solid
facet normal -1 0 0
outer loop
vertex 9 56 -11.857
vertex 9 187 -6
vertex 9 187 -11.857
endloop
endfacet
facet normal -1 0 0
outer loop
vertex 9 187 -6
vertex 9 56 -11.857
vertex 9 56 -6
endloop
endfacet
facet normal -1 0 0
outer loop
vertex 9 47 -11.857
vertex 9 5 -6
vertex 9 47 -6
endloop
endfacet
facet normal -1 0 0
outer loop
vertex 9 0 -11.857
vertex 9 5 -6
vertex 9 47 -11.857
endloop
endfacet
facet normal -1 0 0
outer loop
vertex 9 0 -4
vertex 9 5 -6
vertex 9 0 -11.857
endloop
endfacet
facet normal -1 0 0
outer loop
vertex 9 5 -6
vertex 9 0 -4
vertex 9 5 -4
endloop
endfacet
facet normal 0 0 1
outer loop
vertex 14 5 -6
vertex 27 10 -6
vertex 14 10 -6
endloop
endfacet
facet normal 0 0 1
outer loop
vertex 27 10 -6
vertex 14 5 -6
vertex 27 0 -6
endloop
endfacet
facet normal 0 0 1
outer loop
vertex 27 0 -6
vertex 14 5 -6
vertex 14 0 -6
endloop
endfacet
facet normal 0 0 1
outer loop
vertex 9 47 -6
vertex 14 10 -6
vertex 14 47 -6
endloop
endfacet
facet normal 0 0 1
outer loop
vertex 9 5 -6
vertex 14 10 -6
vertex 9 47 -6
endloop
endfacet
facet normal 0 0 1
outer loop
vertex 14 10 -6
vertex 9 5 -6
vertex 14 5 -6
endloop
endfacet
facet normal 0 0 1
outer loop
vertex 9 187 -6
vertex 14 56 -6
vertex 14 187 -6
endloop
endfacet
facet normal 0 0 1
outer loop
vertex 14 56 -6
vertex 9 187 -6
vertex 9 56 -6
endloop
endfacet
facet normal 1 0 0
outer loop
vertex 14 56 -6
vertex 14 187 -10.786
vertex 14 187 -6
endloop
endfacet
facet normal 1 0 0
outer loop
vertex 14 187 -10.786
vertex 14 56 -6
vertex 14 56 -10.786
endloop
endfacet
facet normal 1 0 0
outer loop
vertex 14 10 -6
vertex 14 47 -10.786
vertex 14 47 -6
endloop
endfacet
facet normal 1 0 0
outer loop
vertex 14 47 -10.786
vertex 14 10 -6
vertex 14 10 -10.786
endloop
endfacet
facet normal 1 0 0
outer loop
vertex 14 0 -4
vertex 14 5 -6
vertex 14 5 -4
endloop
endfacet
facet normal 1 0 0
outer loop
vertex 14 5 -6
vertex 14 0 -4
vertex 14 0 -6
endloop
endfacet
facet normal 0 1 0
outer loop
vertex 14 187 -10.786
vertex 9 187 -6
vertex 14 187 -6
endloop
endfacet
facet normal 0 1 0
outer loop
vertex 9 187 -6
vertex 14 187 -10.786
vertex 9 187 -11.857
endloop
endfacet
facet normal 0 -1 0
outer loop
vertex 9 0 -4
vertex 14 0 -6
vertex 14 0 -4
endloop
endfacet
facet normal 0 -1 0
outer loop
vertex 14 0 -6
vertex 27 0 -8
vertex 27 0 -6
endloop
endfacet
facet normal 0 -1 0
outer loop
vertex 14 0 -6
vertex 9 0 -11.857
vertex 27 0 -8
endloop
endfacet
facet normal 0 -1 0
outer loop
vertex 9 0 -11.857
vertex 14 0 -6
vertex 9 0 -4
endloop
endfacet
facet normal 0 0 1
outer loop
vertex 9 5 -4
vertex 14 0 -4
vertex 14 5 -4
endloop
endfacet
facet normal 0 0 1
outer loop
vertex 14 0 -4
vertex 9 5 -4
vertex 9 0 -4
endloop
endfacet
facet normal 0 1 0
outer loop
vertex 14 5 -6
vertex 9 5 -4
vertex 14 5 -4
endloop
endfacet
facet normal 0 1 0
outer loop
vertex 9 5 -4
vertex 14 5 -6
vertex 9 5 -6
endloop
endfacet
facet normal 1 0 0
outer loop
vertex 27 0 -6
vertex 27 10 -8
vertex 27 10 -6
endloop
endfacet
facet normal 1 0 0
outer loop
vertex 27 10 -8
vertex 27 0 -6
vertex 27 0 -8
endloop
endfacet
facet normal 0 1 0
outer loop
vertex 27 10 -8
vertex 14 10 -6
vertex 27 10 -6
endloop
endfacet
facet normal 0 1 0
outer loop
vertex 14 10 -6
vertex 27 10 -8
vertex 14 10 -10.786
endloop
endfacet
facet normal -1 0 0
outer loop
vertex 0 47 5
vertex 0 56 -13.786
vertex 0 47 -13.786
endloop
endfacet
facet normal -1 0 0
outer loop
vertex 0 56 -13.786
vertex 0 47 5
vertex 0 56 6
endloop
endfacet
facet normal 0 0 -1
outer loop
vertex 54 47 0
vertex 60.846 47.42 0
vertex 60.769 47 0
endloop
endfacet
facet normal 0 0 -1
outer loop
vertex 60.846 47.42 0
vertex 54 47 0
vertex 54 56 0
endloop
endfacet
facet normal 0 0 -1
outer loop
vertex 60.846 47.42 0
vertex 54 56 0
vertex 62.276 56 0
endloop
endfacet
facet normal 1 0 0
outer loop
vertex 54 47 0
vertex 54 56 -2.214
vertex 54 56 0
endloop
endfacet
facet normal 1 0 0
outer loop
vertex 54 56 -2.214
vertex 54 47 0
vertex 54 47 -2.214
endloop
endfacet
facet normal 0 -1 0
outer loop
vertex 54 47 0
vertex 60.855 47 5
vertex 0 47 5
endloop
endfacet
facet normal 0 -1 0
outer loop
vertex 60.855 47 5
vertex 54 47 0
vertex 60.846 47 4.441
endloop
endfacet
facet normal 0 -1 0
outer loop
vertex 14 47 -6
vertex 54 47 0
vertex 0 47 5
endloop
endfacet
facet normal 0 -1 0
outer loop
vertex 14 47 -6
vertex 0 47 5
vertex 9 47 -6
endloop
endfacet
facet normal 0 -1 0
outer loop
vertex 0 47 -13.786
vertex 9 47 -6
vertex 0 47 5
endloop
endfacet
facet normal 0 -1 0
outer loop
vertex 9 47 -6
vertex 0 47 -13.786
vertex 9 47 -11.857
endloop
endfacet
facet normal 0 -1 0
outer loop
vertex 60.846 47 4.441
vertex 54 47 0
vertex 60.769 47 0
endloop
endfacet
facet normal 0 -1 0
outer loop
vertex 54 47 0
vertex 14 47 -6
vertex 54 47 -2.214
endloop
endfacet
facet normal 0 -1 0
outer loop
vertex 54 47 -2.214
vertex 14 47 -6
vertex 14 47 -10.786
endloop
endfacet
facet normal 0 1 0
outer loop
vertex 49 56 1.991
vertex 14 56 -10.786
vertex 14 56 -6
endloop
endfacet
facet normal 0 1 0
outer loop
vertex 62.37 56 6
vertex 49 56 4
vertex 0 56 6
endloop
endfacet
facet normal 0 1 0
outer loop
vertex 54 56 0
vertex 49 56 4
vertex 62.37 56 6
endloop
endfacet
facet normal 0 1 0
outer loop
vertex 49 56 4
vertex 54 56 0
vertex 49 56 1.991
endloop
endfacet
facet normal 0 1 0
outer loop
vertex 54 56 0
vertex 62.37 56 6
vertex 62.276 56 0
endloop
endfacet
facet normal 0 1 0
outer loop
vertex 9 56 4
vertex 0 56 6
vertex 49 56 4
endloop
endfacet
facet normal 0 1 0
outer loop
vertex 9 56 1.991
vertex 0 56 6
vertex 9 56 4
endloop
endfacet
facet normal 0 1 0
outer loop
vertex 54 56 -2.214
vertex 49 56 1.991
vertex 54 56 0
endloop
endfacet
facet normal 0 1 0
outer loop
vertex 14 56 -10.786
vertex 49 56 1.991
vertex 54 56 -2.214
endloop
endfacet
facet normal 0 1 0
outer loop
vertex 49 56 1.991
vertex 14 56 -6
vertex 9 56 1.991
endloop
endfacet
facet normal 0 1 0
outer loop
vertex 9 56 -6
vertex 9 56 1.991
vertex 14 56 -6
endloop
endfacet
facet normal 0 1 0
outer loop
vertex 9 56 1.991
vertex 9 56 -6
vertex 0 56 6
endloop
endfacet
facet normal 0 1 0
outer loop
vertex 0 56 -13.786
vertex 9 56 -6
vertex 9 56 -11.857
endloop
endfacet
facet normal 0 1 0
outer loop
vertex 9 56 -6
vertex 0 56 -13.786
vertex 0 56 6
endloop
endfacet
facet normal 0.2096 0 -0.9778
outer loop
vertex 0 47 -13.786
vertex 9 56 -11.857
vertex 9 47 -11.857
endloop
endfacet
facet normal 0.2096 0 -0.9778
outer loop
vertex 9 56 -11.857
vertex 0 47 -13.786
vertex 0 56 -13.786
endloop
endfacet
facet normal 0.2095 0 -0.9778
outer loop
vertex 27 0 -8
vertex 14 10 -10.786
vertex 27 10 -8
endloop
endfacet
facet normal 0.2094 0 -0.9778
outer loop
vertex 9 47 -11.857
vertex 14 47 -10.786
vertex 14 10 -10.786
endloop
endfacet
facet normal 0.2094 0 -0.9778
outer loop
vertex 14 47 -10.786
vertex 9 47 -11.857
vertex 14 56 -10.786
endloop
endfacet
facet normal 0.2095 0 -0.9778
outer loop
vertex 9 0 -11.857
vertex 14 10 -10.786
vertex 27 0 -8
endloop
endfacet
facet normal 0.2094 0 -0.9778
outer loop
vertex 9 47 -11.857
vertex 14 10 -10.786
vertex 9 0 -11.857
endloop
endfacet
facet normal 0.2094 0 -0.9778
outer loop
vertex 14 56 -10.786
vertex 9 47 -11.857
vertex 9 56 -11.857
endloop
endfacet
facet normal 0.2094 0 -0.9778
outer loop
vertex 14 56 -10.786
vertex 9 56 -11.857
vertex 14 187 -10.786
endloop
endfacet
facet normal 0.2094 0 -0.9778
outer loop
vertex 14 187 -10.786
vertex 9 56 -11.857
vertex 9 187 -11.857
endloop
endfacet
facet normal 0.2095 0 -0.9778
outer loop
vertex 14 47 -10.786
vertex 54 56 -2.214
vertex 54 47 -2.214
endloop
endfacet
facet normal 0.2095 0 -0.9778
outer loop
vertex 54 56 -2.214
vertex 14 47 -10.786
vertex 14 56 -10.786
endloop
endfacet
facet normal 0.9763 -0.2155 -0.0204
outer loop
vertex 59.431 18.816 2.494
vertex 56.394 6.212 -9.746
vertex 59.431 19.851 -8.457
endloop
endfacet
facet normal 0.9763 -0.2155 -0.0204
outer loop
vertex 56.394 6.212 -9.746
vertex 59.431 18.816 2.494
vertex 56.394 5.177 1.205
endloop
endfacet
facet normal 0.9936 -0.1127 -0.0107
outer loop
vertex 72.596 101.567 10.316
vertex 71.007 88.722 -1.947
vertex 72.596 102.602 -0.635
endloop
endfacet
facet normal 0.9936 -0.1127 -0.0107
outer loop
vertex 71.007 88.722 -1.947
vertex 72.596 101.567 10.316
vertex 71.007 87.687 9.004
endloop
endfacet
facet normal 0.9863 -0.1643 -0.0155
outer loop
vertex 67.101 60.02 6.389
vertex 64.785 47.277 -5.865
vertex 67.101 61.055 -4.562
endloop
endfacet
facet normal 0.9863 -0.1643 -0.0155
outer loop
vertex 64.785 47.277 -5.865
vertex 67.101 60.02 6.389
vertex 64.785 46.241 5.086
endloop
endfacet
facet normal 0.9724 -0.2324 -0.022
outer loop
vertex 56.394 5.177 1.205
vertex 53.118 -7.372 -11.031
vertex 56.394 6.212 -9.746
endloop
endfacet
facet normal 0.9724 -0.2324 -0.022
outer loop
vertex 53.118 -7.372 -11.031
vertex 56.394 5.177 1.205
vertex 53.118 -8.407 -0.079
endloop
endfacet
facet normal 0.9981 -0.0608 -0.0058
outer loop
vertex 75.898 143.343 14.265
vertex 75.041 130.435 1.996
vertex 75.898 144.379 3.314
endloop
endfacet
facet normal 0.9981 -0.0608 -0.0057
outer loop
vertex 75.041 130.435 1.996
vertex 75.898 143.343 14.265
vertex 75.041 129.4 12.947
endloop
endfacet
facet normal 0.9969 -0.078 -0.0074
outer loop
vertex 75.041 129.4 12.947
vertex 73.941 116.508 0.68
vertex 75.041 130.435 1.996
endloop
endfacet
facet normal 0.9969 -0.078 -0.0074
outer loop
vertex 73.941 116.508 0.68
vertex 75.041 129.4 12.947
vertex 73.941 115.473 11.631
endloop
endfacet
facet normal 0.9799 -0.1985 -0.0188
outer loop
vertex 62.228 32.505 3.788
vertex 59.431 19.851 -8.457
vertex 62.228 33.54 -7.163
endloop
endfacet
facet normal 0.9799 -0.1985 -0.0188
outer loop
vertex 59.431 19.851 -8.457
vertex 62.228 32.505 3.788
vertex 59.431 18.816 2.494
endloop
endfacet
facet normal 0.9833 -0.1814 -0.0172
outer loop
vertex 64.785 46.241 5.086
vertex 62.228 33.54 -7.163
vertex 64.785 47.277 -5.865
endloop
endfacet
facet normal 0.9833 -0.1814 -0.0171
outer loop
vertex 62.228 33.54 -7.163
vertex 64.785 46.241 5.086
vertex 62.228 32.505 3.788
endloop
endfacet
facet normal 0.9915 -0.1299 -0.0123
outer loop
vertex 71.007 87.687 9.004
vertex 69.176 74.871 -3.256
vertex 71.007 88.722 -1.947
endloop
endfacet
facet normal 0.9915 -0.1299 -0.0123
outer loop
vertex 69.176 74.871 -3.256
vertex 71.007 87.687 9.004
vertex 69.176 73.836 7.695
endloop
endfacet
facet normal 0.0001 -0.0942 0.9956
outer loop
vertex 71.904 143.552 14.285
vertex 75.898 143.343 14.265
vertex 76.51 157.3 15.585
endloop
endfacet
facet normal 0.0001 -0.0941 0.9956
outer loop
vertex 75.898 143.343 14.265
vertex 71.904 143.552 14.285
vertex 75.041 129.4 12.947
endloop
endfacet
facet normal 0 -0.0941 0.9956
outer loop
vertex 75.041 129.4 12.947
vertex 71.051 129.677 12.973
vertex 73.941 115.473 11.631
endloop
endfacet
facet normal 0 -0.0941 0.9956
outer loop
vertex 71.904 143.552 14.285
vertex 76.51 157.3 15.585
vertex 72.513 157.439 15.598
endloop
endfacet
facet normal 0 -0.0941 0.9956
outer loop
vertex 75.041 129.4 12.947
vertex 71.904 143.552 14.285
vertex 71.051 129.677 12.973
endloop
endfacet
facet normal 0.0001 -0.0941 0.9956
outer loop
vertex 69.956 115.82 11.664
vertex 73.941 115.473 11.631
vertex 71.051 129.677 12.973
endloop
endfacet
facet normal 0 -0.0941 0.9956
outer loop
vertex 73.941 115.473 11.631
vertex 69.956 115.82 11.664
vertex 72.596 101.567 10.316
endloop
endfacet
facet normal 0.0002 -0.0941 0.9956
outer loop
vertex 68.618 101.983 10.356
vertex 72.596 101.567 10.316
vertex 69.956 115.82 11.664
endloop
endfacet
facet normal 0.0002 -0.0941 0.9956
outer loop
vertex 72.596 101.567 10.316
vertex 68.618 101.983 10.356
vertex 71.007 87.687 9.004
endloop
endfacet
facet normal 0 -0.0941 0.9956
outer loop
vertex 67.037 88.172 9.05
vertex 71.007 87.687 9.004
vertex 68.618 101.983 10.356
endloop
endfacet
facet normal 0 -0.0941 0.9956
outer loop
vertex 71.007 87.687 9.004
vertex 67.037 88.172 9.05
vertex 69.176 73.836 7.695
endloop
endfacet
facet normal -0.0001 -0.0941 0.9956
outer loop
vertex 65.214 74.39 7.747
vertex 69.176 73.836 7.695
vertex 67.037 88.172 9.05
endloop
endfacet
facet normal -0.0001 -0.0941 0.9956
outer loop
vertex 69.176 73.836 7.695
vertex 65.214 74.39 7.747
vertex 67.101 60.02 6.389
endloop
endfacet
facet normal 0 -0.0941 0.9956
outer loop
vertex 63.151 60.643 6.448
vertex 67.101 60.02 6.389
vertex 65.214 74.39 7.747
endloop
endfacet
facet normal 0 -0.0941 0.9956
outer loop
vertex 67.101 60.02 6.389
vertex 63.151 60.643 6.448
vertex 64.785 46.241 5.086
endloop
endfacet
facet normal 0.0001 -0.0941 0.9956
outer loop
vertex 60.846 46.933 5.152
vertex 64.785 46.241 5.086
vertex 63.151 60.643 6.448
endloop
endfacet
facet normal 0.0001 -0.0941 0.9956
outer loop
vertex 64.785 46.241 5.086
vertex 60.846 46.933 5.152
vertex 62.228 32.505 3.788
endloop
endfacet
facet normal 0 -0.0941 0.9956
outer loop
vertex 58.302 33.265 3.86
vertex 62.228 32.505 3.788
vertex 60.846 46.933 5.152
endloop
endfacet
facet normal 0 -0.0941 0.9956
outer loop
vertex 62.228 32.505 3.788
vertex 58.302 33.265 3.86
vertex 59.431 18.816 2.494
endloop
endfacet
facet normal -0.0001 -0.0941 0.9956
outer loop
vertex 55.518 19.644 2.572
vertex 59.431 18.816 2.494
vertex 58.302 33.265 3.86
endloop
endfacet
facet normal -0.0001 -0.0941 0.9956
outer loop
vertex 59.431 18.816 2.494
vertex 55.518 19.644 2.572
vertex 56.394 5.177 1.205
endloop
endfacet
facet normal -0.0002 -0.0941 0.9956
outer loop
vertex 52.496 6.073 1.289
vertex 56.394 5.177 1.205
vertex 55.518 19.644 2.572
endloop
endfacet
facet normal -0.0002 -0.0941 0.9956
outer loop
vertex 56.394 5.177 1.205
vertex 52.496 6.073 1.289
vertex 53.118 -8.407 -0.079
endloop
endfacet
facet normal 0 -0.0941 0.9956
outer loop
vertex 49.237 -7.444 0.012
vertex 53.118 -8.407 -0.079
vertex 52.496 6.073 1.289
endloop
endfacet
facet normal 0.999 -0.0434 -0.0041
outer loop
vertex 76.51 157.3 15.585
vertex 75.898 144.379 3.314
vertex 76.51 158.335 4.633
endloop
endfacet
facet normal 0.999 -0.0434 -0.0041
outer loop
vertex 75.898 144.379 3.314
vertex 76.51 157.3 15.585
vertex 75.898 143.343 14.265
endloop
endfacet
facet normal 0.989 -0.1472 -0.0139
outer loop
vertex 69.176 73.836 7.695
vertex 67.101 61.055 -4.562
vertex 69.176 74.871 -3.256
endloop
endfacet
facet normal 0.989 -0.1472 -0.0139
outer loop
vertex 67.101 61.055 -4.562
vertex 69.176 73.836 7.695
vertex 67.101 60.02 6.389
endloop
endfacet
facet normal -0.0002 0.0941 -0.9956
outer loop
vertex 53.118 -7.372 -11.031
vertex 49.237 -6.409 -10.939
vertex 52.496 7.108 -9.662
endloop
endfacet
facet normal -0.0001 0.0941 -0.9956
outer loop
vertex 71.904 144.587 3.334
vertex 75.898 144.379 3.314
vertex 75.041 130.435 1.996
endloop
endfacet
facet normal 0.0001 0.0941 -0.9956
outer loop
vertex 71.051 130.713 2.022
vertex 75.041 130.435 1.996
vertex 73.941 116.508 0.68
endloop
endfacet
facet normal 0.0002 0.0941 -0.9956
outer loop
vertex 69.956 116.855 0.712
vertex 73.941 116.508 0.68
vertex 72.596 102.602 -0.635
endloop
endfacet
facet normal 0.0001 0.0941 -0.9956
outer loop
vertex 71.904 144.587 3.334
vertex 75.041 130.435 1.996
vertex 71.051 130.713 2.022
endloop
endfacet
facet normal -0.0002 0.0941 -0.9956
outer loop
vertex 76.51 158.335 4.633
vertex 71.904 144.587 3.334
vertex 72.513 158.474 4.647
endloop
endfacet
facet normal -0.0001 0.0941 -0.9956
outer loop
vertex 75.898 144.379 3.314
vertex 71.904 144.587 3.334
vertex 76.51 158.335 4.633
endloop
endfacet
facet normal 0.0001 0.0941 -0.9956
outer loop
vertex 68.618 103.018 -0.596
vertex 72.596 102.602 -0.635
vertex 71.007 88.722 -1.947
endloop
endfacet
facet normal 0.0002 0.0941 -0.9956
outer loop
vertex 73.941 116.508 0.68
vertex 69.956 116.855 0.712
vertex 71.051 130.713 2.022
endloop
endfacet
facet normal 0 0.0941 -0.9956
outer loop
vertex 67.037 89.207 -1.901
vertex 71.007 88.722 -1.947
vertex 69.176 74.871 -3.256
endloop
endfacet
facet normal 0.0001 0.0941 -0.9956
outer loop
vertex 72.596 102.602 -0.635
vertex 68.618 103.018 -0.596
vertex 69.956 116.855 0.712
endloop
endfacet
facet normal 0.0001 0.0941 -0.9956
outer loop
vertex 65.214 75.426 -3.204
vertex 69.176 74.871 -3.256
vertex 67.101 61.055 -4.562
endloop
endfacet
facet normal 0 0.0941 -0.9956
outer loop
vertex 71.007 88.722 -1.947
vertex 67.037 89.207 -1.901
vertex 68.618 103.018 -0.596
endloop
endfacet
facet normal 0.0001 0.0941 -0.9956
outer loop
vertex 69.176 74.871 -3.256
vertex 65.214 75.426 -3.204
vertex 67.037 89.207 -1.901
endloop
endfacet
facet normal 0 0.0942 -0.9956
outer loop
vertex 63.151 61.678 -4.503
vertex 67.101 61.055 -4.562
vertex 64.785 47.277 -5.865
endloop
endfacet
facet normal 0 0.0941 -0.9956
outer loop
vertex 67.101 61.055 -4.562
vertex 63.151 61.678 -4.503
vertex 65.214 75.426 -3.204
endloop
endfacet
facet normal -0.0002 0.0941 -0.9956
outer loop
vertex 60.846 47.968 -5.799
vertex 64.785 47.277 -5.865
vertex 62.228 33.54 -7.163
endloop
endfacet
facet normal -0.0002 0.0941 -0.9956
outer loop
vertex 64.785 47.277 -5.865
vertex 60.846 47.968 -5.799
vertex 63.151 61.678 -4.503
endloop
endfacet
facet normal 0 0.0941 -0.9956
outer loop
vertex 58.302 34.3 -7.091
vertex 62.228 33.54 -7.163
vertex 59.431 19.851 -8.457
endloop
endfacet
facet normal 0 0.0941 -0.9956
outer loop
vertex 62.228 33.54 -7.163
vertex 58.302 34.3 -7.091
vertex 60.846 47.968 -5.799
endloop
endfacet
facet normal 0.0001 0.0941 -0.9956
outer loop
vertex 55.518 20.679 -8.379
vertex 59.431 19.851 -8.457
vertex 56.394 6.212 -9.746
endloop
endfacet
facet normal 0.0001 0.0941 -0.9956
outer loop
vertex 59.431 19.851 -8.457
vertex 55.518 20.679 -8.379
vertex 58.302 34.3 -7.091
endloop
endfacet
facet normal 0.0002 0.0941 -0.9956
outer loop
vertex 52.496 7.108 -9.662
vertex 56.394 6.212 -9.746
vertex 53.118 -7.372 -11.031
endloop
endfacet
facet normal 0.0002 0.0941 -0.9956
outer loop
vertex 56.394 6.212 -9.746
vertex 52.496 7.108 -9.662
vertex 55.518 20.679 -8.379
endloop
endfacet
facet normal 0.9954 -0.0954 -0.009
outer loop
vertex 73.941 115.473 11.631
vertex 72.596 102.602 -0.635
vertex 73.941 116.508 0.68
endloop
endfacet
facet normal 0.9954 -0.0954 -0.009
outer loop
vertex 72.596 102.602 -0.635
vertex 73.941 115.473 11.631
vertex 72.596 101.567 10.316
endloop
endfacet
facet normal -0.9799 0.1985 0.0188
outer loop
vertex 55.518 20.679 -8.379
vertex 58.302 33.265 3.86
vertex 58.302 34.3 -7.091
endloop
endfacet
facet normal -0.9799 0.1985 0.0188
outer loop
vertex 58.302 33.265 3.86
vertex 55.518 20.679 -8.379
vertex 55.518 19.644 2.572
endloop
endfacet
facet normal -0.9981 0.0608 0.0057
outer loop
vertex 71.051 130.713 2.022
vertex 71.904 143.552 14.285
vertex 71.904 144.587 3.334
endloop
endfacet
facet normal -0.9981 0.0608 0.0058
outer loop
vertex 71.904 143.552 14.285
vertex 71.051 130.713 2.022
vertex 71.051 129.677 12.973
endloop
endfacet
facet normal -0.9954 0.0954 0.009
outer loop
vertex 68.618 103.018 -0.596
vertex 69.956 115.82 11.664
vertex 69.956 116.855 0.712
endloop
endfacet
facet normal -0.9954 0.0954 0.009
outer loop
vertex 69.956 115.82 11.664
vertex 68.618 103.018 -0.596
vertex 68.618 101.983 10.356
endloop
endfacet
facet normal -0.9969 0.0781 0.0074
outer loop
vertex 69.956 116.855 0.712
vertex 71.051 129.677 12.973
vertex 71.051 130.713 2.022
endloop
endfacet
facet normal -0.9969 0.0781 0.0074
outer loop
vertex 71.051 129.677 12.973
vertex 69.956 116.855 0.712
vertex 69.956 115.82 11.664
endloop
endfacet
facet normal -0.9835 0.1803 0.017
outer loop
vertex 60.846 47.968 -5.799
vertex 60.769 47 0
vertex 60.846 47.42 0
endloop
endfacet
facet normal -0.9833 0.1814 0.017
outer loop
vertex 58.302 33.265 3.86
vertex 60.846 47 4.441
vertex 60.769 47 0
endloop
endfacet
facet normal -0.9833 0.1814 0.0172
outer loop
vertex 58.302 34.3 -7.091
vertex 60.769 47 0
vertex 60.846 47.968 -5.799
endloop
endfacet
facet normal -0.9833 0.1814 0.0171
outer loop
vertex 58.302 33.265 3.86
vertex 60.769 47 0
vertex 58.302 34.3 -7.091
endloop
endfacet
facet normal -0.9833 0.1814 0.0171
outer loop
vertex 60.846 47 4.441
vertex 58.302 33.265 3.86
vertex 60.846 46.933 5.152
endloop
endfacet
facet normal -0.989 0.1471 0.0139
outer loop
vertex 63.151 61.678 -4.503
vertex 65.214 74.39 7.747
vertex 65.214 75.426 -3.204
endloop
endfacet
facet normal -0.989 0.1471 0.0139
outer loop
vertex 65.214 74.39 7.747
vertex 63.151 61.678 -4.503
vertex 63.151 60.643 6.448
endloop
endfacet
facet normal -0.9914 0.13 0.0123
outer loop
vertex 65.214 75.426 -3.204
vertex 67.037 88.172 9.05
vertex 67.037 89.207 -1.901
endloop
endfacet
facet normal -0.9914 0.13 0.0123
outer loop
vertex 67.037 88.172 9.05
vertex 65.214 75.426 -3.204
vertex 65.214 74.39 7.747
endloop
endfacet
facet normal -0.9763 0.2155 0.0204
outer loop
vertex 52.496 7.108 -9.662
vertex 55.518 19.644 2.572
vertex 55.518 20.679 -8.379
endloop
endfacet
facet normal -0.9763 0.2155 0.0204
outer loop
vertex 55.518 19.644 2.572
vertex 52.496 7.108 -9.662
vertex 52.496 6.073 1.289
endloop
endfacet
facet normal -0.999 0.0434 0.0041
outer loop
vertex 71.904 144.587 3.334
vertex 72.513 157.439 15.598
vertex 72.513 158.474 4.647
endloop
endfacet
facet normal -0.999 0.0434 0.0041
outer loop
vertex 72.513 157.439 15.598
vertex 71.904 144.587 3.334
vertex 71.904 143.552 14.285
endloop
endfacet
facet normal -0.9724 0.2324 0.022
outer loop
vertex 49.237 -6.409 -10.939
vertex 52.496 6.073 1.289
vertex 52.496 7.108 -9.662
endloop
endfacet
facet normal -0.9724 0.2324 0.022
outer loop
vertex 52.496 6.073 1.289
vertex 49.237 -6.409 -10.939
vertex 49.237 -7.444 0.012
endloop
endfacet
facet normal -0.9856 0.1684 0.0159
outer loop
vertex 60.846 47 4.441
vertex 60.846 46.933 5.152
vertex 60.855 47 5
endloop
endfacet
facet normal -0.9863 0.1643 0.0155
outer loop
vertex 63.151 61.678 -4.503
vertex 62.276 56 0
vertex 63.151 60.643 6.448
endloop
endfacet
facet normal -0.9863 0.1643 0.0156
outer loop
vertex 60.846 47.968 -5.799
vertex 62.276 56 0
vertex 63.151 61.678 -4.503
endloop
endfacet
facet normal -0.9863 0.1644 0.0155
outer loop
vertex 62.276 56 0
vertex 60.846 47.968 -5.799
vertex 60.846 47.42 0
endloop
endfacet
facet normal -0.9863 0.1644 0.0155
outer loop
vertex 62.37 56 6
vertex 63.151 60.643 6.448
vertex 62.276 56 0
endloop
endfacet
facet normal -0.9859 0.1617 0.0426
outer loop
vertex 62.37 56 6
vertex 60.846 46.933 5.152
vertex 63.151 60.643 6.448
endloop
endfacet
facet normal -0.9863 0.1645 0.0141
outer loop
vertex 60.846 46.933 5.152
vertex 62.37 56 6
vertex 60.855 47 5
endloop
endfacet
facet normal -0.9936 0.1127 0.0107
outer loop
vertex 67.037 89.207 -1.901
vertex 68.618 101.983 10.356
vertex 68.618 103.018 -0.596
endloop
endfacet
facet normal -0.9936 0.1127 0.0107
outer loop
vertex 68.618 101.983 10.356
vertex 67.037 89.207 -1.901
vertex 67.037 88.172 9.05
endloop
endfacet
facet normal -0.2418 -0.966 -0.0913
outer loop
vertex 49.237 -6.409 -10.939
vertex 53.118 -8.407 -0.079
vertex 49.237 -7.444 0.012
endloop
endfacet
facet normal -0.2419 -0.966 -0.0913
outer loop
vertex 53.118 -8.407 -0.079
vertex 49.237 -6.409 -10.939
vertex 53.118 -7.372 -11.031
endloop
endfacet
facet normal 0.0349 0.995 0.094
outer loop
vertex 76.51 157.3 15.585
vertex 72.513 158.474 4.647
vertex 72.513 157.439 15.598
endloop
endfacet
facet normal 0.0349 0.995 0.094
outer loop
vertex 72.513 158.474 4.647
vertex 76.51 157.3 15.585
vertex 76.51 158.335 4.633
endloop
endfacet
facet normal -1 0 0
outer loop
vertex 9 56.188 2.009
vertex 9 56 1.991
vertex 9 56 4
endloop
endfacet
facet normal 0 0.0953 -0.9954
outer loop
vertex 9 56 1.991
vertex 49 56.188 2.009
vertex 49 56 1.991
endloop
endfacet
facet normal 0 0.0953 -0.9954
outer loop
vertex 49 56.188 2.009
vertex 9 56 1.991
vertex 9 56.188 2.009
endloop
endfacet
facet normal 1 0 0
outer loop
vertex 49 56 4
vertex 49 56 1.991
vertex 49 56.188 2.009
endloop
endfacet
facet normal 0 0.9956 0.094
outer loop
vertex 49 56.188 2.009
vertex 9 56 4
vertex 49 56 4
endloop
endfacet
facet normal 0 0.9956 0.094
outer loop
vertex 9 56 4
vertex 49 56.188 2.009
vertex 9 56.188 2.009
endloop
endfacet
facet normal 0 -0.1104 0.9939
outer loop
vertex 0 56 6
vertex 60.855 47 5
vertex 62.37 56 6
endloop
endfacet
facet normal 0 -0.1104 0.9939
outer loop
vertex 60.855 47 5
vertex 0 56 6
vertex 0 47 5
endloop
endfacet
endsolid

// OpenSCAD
d1 = 5;
w = 187;
d2 = 9;
d3 = 5;
d4 = 14;
d4a = 8;
d5 = 2;
h = 54;
c1 = 9;
c2 = 47;

buf = 10;
e = 1;

z1 = 5;
z2 = 6;
g = 9;

d6 = 9;
d7 = 2;
b = 9; // short to save filament, try 9

q = 7;
l1 = 27;
l2 = 18;
d8 = 8;

r1 = 800;
r2 = 804; // narrow to save filament, try 210

a1 = -145 - 591;
a2 = -30 - 100;


union () {
    difference() {
        union() {
            
            translate([c1, 0, -d4 - buf]) {
                cube([d1, w, d4a + buf]);
                cube([d1, 5 , d4a + buf + 2]);
                cube([18, 10, d4a + buf]);
            }
            translate([0, c2, -d4 - buf]) cube([h, d2, d4 + buf]);
        }

        translate([0, w + e, 0])
        rotate([90, 0, 0]) 
        linear_extrude(w + 2 * e) 
        polygon([[-e, -d4 - buf - e], [-e, -d4], [h + e, -d5], [h + e, -d4 - buf - e]]);
    }

    translate([0, c2, 0])
    rotate([90, 0, 90])
    linear_extrude(h + g)
    polygon([[0, 0], [0, z1], [d2, z2], [d2, 0]]);

    translate([g, c2+d2, 4])
    rotate([-174.6, 0, 0])
    union() {
        cube([40, d6, d7]);

        difference() {
            translate([a1, a2, -2])
            difference() {
                cylinder(d7 + b, r2, r2, $fn=360);
                translate([0, 0, -e]) cylinder(d7 + 2 * e + b, r1, r1, $fn=360);
            }

            translate([-2000, -1000, -200])
            cube([2000, 2000, 400]); //d7 + b + 2 * e]);

            translate([a1, a2, -500])
            rotate([0, 0, 14])
            cube([1000, 1000, 1000]); //d7 + b + 2 * e]);

            translate([a1, a2, -500])
            rotate([0, 0, -88])
            cube([1000, 1000, 1000]); //d7 + b + 2 * e]);
        }
    }

}
